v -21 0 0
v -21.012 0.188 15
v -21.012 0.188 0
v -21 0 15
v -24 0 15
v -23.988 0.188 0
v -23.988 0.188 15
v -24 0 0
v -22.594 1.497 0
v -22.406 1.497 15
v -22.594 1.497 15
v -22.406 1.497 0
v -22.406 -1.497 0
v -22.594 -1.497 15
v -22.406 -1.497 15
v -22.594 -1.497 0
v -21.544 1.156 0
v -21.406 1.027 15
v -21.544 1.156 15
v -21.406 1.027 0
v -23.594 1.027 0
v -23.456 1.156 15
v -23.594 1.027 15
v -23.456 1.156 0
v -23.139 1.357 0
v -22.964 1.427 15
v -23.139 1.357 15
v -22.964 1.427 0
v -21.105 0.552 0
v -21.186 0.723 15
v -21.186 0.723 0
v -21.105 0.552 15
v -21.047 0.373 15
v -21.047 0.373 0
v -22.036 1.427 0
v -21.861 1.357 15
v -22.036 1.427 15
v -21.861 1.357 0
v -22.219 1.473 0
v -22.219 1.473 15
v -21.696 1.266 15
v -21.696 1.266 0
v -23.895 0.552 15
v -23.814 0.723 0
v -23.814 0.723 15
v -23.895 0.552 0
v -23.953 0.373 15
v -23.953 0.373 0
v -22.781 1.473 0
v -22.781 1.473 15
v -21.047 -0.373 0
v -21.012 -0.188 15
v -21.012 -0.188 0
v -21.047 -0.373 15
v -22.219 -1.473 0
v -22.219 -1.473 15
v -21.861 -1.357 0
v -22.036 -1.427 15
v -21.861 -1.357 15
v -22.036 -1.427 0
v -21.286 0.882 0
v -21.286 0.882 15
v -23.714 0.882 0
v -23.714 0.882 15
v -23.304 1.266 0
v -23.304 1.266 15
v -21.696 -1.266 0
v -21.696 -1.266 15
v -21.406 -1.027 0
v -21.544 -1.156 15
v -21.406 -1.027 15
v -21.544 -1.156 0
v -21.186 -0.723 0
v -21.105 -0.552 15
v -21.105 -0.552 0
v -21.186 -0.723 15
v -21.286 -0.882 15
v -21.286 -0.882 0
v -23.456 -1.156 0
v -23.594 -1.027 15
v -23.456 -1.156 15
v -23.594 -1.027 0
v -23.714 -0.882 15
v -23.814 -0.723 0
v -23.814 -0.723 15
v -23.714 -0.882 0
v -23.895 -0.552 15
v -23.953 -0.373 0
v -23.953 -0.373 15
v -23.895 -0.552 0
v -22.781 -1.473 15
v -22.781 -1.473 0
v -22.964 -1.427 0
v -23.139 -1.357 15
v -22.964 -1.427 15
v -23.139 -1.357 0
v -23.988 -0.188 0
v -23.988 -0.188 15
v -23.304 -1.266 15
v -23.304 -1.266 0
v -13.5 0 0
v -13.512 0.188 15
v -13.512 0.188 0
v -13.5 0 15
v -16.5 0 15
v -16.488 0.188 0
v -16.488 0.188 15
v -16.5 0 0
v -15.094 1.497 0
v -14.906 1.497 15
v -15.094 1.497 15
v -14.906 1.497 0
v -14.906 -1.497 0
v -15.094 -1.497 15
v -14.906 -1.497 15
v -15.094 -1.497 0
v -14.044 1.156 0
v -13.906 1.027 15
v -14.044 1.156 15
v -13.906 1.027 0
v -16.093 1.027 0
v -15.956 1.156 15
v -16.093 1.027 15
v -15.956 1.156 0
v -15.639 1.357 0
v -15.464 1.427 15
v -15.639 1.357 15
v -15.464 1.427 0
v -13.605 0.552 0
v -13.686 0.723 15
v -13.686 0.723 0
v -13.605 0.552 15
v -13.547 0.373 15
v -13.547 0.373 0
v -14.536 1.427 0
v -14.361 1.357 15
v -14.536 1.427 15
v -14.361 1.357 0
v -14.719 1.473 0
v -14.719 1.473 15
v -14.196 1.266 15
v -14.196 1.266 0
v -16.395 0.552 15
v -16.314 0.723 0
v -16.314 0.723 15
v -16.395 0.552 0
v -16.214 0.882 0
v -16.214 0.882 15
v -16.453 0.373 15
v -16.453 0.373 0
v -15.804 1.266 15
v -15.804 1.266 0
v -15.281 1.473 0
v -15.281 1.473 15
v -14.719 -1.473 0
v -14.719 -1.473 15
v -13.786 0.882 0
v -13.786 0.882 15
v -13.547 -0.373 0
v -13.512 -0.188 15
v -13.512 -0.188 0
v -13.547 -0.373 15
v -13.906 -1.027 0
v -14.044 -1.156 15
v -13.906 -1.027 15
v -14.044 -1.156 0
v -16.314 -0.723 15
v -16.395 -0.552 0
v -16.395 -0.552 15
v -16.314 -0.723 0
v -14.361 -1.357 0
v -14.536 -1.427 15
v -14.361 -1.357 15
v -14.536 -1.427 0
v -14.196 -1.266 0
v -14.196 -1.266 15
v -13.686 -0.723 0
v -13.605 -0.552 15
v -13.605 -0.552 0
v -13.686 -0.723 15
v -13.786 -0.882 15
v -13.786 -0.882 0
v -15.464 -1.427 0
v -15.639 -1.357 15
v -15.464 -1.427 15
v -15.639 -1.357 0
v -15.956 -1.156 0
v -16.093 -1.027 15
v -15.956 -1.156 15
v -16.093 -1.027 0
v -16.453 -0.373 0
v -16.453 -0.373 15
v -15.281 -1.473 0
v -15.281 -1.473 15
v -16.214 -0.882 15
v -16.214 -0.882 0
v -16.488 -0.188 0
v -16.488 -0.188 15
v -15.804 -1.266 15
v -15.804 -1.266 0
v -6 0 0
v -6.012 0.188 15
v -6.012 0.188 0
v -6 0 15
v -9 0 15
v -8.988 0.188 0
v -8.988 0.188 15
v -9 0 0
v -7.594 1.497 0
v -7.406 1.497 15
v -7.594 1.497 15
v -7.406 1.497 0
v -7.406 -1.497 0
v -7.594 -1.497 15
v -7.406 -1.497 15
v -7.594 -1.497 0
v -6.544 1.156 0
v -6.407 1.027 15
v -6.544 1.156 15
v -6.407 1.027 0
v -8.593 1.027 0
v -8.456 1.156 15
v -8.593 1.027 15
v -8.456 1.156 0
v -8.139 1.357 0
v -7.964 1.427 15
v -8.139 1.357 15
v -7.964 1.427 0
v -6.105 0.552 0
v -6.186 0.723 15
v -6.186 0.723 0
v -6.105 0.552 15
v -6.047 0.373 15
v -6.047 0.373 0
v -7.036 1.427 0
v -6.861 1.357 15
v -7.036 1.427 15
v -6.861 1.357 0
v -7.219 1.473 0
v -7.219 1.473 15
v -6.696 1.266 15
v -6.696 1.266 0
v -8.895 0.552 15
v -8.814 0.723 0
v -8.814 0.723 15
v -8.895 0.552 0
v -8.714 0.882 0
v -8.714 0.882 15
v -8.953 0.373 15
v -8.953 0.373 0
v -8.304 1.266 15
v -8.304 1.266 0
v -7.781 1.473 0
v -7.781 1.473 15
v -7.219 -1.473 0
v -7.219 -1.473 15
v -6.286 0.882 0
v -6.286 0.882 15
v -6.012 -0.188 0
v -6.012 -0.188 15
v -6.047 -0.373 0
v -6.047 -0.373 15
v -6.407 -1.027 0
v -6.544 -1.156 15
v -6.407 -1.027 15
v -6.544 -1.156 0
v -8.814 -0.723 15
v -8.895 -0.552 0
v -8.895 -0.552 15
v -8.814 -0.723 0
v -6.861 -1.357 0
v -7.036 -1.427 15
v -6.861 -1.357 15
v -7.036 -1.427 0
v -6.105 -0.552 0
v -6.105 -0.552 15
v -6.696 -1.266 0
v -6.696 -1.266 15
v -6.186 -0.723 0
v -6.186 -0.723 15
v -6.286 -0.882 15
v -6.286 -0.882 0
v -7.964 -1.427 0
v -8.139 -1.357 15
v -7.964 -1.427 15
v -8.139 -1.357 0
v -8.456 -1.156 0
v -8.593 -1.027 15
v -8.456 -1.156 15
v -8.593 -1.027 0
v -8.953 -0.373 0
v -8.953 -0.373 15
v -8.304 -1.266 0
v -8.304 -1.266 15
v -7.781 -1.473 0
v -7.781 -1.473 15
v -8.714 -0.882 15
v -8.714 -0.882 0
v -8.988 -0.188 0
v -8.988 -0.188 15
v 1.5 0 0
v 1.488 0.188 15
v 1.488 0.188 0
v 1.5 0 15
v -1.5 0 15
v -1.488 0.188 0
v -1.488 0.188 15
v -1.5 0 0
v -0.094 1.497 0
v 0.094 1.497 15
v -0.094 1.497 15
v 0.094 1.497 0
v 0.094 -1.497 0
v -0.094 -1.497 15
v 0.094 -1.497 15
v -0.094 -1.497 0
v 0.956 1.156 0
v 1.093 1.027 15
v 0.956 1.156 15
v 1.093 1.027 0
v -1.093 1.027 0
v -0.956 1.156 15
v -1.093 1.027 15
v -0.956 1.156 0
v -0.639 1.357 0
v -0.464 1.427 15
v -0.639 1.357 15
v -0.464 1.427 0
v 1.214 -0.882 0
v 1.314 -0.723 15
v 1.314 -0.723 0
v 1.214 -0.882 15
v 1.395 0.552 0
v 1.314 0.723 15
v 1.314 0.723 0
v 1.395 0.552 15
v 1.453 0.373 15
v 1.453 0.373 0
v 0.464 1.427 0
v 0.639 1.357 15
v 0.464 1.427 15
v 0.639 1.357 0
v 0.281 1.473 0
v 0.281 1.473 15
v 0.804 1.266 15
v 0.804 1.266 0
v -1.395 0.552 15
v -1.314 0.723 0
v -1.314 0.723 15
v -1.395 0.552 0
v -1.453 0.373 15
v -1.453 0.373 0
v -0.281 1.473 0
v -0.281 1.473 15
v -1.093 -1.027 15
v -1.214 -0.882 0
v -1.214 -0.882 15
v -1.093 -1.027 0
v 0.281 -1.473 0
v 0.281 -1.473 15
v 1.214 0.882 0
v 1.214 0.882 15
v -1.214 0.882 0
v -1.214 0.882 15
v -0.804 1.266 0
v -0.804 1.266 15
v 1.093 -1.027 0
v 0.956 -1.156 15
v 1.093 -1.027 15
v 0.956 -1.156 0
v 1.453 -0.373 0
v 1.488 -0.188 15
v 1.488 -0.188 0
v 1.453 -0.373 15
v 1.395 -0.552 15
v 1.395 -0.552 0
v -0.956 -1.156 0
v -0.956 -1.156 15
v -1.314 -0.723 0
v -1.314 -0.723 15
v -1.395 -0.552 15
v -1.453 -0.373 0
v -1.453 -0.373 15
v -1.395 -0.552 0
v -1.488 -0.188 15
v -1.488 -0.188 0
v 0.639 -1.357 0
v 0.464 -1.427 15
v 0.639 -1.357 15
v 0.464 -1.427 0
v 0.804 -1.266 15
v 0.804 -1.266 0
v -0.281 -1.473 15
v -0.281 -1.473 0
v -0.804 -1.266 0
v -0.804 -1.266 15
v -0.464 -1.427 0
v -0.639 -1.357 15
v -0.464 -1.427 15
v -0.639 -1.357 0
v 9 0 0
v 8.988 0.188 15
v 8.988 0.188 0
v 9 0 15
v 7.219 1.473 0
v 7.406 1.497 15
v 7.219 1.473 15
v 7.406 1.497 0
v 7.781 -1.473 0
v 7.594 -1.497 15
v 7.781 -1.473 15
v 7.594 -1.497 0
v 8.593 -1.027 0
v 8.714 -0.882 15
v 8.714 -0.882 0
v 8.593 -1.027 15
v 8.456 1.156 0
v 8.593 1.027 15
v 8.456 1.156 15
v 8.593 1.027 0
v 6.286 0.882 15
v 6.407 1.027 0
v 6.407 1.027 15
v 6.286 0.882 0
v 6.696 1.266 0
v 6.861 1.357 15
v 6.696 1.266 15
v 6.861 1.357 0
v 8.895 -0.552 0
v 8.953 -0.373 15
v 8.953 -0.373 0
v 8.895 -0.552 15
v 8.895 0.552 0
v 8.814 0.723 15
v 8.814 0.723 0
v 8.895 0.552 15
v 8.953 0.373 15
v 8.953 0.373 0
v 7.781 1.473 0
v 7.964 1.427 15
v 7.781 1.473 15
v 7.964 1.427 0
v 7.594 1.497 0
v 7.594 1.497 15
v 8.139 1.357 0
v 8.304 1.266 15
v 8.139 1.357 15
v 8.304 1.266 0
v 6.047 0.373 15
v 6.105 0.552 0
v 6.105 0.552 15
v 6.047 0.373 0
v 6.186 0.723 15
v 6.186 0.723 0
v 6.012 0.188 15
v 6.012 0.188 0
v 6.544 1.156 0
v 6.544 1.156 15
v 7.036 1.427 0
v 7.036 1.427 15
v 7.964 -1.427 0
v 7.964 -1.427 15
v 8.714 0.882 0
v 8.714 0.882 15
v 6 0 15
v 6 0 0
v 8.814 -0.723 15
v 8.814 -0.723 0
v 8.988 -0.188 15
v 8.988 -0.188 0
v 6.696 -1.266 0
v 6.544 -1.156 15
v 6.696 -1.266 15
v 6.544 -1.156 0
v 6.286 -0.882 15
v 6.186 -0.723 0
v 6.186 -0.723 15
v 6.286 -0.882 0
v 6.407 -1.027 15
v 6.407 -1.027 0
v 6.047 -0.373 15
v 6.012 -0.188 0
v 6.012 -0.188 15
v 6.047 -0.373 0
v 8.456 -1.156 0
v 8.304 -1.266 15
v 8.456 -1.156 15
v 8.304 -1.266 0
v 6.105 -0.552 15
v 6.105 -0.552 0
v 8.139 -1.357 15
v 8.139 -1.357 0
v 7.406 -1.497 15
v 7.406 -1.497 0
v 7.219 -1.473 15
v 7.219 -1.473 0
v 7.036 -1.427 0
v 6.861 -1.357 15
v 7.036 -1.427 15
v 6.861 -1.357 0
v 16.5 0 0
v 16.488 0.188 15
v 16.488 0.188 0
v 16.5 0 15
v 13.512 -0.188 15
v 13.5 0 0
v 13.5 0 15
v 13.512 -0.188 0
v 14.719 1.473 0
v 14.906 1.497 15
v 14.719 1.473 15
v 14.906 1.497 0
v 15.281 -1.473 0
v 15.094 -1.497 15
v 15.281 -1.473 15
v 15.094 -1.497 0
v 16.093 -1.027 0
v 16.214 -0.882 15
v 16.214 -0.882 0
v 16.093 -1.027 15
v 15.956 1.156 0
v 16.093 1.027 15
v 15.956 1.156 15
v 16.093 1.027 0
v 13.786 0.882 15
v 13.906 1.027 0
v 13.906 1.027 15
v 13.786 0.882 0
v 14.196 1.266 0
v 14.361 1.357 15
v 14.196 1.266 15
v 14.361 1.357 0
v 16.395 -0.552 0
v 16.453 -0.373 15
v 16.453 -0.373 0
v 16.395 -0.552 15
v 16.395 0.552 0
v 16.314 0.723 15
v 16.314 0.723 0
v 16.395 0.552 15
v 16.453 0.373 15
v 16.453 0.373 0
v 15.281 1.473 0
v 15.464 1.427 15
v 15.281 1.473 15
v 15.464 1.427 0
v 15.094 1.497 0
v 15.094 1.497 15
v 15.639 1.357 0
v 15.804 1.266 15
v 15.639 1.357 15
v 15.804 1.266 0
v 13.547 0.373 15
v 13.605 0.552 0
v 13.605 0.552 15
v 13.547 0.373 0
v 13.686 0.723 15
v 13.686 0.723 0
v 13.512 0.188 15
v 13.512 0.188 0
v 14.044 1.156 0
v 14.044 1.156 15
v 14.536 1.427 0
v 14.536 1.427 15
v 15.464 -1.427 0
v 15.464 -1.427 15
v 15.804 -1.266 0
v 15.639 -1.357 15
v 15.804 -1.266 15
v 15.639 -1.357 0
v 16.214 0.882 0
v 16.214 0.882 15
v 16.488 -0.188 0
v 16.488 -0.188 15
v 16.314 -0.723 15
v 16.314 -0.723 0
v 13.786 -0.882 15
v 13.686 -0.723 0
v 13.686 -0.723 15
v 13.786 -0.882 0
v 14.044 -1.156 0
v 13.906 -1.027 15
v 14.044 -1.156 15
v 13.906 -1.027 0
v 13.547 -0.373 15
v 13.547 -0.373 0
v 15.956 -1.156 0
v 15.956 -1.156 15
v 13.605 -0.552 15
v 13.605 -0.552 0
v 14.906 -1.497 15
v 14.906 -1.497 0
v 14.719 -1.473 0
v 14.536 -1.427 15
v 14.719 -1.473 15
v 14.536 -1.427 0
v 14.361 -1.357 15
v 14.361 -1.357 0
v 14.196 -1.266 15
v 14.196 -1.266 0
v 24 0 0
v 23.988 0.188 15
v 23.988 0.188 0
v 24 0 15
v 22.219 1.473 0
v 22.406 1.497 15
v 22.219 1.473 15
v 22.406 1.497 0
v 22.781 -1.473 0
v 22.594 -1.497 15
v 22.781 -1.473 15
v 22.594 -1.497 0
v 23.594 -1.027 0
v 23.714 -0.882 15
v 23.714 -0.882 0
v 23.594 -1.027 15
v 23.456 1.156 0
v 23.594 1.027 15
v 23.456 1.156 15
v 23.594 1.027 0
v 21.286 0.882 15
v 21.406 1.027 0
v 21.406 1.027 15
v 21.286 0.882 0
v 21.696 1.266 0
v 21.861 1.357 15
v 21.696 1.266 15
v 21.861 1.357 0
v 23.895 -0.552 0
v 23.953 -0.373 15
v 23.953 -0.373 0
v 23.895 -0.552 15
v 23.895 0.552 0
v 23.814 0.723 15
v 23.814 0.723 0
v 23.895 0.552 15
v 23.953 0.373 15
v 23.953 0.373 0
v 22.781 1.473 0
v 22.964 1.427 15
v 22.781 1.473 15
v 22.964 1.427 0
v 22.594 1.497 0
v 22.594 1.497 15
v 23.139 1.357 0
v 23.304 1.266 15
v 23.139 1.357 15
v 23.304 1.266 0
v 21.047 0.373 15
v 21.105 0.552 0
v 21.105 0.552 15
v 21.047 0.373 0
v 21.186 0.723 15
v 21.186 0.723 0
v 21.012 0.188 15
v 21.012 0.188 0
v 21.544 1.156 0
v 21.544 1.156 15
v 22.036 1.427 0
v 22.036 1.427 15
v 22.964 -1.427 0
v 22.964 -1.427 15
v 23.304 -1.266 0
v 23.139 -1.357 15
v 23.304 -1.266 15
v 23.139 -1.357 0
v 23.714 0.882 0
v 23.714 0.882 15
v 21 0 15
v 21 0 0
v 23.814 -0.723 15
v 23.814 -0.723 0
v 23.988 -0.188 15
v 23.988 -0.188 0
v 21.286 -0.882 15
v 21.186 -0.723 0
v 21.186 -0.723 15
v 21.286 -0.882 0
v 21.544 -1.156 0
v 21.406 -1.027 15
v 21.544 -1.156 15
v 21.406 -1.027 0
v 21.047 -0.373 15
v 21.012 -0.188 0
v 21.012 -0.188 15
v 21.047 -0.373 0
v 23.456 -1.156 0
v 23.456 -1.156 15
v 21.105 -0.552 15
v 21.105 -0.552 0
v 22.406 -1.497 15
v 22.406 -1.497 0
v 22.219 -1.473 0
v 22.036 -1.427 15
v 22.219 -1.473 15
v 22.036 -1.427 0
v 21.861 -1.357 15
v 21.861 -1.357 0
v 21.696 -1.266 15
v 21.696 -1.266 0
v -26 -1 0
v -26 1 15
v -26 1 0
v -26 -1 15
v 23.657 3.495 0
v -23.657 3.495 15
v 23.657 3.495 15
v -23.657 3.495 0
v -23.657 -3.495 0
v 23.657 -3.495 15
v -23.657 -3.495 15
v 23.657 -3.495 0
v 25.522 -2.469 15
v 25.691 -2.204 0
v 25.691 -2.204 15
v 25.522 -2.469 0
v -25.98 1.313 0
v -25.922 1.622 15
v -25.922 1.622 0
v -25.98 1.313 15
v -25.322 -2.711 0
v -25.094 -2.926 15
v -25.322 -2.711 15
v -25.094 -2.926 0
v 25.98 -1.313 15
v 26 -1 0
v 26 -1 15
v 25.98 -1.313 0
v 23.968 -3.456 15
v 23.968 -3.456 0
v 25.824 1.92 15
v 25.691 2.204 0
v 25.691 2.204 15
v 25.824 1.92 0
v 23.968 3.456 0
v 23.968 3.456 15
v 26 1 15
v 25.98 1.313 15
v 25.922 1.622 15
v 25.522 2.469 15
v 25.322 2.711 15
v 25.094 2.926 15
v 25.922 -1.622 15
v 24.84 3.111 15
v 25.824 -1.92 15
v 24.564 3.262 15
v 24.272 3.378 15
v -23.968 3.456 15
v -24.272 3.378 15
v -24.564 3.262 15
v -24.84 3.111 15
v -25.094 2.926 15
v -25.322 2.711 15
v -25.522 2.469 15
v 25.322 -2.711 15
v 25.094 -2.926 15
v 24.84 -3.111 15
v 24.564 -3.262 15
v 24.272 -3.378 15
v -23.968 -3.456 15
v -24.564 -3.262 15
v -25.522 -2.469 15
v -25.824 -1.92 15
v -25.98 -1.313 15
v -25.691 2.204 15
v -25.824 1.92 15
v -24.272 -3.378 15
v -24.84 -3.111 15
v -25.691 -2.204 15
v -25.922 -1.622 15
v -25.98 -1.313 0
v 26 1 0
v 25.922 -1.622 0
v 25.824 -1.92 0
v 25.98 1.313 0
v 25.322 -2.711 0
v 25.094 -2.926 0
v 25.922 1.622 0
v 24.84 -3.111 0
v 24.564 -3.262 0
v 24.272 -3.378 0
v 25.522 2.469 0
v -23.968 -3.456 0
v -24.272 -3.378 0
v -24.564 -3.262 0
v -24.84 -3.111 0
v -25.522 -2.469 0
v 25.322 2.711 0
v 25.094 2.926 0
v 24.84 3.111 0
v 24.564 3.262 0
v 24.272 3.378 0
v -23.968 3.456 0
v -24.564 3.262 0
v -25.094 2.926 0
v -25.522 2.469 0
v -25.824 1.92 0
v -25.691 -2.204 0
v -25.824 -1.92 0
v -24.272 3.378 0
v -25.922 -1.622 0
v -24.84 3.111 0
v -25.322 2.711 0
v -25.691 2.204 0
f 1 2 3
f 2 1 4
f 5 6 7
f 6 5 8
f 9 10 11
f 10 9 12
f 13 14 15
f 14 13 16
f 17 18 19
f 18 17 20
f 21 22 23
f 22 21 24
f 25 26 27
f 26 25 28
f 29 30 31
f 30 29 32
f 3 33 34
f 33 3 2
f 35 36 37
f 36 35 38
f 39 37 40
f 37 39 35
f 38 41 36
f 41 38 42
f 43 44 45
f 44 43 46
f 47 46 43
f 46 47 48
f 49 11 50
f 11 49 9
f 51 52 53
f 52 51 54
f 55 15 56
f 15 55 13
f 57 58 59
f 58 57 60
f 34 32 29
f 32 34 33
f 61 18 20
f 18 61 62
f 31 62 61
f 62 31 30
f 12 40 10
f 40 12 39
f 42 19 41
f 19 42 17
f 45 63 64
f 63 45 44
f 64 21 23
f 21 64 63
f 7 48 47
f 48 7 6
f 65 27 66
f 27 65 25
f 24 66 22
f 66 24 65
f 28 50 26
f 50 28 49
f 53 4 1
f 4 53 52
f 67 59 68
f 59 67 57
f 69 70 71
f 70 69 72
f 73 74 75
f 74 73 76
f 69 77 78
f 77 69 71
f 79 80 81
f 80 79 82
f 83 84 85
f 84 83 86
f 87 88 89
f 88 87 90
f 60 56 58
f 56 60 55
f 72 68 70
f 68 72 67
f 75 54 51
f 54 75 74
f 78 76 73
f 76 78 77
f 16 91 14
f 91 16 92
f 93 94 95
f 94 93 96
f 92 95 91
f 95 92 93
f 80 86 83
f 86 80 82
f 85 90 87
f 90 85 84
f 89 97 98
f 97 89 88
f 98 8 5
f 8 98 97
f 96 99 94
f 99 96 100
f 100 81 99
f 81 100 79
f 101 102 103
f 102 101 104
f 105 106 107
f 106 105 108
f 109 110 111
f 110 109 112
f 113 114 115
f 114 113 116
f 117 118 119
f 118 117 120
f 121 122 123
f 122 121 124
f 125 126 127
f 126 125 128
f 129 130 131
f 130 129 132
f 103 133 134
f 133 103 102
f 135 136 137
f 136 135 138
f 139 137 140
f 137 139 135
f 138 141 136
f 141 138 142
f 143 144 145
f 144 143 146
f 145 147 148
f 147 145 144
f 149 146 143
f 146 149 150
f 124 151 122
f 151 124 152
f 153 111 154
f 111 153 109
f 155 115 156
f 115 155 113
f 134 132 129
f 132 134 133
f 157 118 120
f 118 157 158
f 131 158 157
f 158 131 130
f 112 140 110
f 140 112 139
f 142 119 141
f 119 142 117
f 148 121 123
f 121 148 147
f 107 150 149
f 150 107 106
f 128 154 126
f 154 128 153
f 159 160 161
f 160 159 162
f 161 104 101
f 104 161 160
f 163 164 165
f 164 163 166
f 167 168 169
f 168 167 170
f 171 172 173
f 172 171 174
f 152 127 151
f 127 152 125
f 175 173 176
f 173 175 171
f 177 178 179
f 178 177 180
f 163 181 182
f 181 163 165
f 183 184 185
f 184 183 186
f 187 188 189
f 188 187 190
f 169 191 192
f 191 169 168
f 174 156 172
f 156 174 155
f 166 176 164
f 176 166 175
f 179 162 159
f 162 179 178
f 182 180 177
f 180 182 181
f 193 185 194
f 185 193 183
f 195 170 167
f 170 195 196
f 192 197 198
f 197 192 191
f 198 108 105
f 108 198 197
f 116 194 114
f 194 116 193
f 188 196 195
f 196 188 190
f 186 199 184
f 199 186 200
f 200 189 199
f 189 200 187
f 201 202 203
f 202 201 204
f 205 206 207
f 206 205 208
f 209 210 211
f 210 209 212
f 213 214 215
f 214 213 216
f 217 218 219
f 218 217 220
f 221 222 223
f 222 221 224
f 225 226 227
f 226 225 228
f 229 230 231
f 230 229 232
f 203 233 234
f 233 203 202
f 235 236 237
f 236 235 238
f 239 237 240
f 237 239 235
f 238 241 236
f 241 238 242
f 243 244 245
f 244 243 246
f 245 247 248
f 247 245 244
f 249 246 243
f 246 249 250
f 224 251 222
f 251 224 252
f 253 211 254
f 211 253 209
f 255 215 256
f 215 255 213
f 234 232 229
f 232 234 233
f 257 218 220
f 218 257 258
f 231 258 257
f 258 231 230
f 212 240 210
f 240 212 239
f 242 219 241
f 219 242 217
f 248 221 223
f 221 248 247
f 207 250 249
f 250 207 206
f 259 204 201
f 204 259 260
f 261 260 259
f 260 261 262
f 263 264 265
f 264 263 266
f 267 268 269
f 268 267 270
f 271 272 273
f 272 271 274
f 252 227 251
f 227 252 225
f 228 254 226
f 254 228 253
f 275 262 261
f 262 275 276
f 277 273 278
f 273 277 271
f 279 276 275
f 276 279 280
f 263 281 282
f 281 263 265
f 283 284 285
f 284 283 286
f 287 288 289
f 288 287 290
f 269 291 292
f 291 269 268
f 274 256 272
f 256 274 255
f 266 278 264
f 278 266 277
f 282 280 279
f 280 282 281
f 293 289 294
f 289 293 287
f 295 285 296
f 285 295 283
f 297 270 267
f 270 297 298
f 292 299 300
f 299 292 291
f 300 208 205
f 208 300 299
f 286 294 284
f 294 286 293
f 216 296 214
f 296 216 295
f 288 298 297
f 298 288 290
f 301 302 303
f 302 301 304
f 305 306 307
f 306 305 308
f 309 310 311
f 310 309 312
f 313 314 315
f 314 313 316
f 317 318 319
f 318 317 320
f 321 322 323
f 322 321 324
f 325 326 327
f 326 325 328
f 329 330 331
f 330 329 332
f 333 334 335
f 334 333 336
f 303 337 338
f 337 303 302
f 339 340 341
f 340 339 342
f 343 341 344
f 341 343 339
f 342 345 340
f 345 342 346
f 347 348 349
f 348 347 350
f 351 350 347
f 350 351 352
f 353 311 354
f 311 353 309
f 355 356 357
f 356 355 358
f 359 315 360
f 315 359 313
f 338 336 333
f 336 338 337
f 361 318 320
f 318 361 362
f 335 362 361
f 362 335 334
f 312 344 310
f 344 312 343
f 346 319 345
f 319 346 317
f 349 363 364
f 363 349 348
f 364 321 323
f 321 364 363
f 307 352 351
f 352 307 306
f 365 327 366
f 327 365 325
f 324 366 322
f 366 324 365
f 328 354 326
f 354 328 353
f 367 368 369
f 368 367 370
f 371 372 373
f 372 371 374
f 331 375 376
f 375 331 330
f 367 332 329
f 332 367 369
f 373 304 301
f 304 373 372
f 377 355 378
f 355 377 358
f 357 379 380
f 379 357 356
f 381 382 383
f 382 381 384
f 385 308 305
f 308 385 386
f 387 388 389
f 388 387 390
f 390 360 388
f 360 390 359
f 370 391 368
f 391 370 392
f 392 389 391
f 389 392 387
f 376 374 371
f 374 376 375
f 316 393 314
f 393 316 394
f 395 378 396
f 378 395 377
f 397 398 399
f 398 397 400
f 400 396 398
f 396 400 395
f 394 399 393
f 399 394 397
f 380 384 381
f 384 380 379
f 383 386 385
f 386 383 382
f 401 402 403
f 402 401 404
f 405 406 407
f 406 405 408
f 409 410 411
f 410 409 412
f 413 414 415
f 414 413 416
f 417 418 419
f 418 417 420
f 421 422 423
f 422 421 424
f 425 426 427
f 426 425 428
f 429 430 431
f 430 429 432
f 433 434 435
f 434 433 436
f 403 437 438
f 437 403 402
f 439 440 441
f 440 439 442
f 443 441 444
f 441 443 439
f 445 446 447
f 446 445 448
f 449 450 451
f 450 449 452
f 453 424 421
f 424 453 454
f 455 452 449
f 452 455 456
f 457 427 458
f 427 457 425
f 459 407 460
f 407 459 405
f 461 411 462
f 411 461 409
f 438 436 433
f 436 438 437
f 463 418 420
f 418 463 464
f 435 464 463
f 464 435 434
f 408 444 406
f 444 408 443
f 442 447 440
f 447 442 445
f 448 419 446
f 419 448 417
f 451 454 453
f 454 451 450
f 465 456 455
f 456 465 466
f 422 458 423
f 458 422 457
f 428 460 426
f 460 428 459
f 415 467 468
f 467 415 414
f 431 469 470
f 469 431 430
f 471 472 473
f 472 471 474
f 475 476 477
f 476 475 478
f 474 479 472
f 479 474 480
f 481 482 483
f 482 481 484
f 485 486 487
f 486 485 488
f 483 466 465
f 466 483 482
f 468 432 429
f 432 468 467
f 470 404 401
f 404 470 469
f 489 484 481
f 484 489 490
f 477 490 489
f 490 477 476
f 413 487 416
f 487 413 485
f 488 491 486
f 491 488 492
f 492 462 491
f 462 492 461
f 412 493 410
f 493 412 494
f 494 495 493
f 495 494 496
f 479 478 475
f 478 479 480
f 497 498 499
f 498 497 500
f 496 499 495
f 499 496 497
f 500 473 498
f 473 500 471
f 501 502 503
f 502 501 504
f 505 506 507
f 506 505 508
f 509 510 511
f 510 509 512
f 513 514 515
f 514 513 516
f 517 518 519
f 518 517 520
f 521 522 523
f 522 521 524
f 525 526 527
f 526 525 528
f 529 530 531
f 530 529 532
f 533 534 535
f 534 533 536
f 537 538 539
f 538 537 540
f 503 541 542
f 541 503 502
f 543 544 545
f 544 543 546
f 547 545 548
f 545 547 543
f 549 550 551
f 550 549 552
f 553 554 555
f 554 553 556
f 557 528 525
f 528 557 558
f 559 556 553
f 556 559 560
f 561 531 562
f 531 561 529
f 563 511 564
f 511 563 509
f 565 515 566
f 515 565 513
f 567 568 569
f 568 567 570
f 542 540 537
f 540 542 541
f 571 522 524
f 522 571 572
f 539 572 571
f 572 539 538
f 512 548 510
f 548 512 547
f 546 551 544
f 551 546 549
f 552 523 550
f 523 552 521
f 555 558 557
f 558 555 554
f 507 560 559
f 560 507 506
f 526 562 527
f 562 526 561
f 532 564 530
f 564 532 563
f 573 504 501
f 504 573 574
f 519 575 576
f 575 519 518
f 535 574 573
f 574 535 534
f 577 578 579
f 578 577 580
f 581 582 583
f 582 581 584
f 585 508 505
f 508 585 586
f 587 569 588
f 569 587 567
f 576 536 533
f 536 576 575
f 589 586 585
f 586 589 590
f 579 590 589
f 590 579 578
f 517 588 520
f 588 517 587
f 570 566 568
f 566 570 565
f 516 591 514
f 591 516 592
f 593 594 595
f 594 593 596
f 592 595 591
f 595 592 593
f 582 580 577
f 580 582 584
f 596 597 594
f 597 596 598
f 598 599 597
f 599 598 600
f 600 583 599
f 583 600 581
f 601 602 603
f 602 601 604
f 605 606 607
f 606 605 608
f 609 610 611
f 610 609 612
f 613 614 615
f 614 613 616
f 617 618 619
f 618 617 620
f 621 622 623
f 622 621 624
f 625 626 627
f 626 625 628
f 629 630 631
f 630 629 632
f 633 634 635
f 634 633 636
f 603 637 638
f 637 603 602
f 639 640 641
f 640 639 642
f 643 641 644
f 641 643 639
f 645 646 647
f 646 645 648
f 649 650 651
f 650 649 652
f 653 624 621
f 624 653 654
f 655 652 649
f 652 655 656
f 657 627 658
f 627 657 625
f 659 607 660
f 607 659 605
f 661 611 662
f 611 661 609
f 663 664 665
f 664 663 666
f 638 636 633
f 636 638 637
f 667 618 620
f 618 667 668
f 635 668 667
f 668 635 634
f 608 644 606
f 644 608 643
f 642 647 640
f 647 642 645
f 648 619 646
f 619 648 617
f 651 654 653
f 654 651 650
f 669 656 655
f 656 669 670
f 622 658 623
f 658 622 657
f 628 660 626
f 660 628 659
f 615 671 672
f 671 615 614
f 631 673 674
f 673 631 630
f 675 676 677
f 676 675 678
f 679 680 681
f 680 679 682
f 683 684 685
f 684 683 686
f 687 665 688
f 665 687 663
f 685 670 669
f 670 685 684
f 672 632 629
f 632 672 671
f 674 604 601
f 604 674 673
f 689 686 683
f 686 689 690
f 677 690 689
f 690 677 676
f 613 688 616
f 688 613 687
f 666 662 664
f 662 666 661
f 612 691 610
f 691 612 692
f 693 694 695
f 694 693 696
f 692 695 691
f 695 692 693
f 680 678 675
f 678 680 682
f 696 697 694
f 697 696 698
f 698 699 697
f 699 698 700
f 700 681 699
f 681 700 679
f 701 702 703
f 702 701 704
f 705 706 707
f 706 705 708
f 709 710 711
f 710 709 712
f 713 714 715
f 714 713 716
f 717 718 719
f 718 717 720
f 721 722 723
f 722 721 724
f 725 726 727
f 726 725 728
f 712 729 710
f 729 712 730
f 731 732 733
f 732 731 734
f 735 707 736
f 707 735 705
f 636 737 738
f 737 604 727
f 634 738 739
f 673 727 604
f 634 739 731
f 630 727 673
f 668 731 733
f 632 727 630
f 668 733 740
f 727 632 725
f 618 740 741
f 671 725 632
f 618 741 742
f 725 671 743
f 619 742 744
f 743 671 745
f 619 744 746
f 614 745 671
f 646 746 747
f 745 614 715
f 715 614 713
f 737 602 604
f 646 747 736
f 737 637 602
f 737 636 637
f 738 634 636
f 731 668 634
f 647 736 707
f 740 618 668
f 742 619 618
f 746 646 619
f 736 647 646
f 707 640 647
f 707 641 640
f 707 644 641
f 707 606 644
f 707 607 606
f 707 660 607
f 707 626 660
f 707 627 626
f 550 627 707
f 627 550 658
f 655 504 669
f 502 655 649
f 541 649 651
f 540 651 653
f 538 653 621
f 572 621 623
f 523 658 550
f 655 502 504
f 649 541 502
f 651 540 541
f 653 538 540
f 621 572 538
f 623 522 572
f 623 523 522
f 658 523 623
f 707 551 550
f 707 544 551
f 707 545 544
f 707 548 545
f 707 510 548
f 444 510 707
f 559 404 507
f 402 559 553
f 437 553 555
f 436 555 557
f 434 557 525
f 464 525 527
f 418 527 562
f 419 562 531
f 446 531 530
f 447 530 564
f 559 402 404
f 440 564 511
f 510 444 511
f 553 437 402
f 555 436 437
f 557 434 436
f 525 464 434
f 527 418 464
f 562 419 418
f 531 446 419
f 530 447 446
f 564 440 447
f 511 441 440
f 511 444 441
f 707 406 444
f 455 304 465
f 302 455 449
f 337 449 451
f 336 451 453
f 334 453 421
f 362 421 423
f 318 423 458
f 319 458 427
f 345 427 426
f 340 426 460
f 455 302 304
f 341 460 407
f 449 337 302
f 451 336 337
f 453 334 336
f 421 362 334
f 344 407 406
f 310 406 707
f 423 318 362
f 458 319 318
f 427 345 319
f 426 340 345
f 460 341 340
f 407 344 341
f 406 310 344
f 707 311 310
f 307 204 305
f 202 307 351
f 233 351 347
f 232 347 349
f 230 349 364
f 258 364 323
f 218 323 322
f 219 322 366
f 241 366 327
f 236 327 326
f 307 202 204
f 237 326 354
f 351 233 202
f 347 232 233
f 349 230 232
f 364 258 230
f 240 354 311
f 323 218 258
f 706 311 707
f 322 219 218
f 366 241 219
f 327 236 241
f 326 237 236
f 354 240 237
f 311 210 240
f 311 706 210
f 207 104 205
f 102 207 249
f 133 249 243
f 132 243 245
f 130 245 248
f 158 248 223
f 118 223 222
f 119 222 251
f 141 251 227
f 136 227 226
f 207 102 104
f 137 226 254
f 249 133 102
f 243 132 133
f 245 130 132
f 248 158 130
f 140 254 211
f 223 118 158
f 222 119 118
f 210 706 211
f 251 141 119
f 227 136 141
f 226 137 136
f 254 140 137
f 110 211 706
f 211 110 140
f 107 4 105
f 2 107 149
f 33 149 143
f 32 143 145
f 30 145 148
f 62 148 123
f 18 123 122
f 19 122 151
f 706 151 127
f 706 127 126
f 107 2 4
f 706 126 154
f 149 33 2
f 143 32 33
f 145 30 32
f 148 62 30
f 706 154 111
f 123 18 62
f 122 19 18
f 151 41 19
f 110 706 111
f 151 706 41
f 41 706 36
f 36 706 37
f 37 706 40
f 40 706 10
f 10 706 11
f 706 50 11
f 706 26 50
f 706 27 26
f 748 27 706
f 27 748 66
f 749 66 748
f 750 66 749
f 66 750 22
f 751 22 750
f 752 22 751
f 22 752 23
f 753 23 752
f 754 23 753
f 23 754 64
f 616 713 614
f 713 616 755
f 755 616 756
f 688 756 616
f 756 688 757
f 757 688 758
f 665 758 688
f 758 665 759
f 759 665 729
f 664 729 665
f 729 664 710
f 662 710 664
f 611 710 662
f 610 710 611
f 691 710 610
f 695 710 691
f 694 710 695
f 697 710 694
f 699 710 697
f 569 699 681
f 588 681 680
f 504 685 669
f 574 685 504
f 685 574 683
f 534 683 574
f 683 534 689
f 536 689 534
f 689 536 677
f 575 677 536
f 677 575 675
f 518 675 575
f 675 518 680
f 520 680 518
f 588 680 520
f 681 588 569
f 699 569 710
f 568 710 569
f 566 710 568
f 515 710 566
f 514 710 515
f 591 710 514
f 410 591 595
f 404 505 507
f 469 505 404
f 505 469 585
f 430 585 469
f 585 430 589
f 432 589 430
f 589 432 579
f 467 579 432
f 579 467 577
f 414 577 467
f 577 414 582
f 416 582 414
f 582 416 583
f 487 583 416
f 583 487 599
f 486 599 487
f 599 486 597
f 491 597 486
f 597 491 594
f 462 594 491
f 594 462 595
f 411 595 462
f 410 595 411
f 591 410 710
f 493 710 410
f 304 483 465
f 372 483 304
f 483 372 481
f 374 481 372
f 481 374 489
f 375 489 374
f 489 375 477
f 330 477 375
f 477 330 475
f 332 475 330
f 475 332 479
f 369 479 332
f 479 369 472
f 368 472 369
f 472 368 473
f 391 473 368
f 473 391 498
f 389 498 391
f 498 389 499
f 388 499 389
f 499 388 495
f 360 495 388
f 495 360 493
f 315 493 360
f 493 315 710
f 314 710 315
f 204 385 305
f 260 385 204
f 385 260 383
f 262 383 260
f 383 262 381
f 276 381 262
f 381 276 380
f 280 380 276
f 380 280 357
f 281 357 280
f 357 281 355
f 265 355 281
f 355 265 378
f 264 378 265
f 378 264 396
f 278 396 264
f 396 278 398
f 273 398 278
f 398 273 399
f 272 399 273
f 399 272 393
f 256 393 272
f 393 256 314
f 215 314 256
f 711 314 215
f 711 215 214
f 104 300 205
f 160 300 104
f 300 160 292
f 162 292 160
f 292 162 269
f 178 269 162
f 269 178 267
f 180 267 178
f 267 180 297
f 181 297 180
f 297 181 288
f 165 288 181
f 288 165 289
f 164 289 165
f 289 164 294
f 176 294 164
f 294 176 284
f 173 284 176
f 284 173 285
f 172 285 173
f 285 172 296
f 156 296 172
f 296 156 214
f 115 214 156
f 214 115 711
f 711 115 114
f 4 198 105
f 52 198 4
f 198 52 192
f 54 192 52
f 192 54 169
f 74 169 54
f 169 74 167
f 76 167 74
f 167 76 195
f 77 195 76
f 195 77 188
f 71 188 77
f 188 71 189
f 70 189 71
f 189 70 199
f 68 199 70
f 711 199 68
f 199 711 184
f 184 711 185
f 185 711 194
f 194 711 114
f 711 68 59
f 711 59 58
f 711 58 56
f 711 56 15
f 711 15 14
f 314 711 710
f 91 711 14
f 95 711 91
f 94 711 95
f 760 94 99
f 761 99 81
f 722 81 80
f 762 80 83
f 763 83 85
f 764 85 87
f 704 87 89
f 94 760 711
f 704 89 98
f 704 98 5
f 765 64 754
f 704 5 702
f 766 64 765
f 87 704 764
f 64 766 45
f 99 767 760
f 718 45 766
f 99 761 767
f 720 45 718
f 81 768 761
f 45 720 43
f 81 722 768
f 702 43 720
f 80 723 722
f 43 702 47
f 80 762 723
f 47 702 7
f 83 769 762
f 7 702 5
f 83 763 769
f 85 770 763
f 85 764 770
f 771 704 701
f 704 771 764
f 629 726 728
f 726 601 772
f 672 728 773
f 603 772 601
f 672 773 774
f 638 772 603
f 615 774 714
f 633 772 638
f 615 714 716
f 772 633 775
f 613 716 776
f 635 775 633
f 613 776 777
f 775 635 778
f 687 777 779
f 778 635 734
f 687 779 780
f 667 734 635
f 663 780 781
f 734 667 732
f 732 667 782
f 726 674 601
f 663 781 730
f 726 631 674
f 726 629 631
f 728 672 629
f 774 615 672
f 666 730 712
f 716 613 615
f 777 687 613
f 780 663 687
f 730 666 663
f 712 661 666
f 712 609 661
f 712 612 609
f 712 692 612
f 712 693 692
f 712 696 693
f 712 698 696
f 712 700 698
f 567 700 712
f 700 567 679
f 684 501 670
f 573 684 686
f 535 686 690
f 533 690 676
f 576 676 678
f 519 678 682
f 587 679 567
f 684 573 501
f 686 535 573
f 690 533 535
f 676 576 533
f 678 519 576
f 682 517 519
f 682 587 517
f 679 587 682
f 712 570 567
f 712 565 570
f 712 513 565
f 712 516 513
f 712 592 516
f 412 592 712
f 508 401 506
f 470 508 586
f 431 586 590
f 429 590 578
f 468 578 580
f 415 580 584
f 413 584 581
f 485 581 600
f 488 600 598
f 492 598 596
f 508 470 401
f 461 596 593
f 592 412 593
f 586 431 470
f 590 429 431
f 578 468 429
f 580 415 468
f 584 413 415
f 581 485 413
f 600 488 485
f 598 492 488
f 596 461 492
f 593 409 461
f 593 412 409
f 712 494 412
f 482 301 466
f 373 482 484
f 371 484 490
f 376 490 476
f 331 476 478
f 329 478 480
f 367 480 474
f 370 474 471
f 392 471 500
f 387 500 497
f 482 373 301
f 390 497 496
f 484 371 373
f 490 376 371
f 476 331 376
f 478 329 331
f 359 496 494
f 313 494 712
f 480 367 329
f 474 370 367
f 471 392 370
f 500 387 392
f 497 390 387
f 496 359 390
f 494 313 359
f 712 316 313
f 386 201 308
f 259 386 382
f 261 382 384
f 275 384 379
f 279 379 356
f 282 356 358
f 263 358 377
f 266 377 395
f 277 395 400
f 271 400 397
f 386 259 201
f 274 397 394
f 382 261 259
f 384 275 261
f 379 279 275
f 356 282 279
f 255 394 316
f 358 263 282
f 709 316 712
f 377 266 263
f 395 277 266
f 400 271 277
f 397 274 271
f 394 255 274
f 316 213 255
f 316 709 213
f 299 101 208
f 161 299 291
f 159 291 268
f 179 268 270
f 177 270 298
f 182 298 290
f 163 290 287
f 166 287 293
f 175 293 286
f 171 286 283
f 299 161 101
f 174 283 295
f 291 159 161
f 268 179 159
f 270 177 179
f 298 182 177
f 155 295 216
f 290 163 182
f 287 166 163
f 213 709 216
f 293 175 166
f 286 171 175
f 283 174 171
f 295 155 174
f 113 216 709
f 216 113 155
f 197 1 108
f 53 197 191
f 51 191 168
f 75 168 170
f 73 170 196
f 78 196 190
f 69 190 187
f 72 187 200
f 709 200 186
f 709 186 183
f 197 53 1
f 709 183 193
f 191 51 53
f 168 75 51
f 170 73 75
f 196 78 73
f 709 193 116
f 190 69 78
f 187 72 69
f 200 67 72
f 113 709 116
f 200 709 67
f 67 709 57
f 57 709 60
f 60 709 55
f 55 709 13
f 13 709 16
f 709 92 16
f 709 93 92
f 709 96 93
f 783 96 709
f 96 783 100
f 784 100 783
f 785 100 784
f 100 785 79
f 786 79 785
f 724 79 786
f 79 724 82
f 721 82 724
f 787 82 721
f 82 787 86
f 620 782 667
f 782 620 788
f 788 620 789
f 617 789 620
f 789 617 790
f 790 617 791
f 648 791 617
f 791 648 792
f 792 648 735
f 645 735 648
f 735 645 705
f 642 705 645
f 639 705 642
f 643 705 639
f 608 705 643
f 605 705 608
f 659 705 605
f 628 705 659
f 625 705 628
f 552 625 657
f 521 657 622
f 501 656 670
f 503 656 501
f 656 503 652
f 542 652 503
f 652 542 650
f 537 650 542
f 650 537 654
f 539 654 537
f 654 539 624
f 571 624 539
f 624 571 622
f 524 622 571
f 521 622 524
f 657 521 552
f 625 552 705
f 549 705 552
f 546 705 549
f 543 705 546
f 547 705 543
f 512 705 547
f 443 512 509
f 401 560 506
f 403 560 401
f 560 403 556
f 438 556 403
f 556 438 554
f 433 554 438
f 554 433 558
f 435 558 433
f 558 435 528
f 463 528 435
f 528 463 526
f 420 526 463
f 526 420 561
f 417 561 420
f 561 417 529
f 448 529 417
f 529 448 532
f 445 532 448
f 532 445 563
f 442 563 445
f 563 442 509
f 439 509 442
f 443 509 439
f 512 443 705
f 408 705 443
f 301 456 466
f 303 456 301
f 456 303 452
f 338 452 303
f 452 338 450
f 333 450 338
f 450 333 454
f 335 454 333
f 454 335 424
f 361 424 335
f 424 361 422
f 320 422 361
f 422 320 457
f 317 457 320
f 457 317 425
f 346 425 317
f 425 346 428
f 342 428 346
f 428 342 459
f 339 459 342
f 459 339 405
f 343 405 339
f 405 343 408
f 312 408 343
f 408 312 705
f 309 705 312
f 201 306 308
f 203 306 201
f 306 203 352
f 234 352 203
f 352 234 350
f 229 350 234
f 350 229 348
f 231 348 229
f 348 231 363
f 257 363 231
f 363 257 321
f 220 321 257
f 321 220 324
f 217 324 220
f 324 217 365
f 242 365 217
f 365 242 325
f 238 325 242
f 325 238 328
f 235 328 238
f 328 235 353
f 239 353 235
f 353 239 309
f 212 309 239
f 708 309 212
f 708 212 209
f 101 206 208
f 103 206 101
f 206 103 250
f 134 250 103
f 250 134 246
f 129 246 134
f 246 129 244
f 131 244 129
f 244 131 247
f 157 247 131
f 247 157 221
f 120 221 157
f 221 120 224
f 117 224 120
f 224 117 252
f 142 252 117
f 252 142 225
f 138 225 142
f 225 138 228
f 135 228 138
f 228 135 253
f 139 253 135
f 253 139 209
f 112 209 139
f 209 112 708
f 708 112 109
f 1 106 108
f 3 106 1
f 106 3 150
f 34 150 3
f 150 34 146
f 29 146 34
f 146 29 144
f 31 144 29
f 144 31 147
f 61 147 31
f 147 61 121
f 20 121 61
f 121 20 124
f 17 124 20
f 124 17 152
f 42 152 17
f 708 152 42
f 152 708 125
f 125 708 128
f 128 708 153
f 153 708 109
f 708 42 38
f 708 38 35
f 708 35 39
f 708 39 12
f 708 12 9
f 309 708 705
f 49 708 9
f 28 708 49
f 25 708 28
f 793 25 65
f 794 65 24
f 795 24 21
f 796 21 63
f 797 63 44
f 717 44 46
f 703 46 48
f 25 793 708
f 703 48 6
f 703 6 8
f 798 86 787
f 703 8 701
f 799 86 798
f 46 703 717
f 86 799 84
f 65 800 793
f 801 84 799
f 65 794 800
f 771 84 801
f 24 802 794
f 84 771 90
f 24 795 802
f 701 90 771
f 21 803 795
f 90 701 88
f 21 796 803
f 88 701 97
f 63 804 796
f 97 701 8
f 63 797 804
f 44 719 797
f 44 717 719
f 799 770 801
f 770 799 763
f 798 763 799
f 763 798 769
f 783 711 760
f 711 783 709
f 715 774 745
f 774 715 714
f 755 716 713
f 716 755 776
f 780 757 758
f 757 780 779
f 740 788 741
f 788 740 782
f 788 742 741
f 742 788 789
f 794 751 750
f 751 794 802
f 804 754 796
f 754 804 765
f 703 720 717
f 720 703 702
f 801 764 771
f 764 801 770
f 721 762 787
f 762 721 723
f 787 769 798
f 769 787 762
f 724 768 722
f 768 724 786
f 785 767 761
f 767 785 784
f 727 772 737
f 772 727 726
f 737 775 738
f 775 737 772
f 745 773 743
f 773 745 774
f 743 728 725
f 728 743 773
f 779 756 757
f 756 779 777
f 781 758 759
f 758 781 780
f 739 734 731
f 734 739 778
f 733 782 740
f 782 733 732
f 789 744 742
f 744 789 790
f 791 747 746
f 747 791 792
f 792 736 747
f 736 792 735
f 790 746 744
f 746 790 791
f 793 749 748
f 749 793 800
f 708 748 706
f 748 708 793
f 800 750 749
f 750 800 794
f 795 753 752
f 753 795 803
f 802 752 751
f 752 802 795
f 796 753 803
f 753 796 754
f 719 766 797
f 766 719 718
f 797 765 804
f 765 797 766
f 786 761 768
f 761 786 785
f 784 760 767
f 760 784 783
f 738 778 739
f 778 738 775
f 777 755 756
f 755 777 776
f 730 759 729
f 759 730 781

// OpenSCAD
$fn = 50;


difference() {
	union() {
		translate(v = [0, 0, 0]) {
			rotate(a = [0, 0, 0]) {
				hull() {
					translate(v = [-23.5000000000, 1.0000000000, 0]) {
						rotate(a = [0, 0, 0]) {
							translate(v = [0, 0, 0]) {
								rotate(a = [0, 0, 0]) {
									cylinder(h = 15, r = 2.5000000000);
								}
							}
						}
					}
					translate(v = [23.5000000000, 1.0000000000, 0]) {
						rotate(a = [0, 0, 0]) {
							translate(v = [0, 0, 0]) {
								rotate(a = [0, 0, 0]) {
									cylinder(h = 15, r = 2.5000000000);
								}
							}
						}
					}
					translate(v = [-23.5000000000, -1.0000000000, 0]) {
						rotate(a = [0, 0, 0]) {
							translate(v = [0, 0, 0]) {
								rotate(a = [0, 0, 0]) {
									cylinder(h = 15, r = 2.5000000000);
								}
							}
						}
					}
					translate(v = [23.5000000000, -1.0000000000, 0]) {
						rotate(a = [0, 0, 0]) {
							translate(v = [0, 0, 0]) {
								rotate(a = [0, 0, 0]) {
									cylinder(h = 15, r = 2.5000000000);
								}
							}
						}
					}
				}
			}
		}
	}
	union() {
		translate(v = [-22.5000000000, 0.0000000000, 0]) {
			rotate(a = [0, 0, 0]) {
				translate(v = [0, 0, -50]) {
					rotate(a = [0, 0, 0]) {
						cylinder(h = 100, r = 1.5000000000);
					}
				}
			}
		}
		translate(v = [-15.0000000000, 0.0000000000, 0]) {
			rotate(a = [0, 0, 0]) {
				translate(v = [0, 0, -50]) {
					rotate(a = [0, 0, 0]) {
						cylinder(h = 100, r = 1.5000000000);
					}
				}
			}
		}
		translate(v = [-7.5000000000, 0.0000000000, 0]) {
			rotate(a = [0, 0, 0]) {
				translate(v = [0, 0, -50]) {
					rotate(a = [0, 0, 0]) {
						cylinder(h = 100, r = 1.5000000000);
					}
				}
			}
		}
		translate(v = [0.0000000000, 0.0000000000, 0]) {
			rotate(a = [0, 0, 0]) {
				translate(v = [0, 0, -50]) {
					rotate(a = [0, 0, 0]) {
						cylinder(h = 100, r = 1.5000000000);
					}
				}
			}
		}
		translate(v = [7.5000000000, 0.0000000000, 0]) {
			rotate(a = [0, 0, 0]) {
				translate(v = [0, 0, -50]) {
					rotate(a = [0, 0, 0]) {
						cylinder(h = 100, r = 1.5000000000);
					}
				}
			}
		}
		translate(v = [15.0000000000, 0.0000000000, 0]) {
			rotate(a = [0, 0, 0]) {
				translate(v = [0, 0, -50]) {
					rotate(a = [0, 0, 0]) {
						cylinder(h = 100, r = 1.5000000000);
					}
				}
			}
		}
		translate(v = [22.5000000000, 0.0000000000, 0]) {
			rotate(a = [0, 0, 0]) {
				translate(v = [0, 0, -50]) {
					rotate(a = [0, 0, 0]) {
						cylinder(h = 100, r = 1.5000000000);
					}
				}
			}
		}
	}
}
